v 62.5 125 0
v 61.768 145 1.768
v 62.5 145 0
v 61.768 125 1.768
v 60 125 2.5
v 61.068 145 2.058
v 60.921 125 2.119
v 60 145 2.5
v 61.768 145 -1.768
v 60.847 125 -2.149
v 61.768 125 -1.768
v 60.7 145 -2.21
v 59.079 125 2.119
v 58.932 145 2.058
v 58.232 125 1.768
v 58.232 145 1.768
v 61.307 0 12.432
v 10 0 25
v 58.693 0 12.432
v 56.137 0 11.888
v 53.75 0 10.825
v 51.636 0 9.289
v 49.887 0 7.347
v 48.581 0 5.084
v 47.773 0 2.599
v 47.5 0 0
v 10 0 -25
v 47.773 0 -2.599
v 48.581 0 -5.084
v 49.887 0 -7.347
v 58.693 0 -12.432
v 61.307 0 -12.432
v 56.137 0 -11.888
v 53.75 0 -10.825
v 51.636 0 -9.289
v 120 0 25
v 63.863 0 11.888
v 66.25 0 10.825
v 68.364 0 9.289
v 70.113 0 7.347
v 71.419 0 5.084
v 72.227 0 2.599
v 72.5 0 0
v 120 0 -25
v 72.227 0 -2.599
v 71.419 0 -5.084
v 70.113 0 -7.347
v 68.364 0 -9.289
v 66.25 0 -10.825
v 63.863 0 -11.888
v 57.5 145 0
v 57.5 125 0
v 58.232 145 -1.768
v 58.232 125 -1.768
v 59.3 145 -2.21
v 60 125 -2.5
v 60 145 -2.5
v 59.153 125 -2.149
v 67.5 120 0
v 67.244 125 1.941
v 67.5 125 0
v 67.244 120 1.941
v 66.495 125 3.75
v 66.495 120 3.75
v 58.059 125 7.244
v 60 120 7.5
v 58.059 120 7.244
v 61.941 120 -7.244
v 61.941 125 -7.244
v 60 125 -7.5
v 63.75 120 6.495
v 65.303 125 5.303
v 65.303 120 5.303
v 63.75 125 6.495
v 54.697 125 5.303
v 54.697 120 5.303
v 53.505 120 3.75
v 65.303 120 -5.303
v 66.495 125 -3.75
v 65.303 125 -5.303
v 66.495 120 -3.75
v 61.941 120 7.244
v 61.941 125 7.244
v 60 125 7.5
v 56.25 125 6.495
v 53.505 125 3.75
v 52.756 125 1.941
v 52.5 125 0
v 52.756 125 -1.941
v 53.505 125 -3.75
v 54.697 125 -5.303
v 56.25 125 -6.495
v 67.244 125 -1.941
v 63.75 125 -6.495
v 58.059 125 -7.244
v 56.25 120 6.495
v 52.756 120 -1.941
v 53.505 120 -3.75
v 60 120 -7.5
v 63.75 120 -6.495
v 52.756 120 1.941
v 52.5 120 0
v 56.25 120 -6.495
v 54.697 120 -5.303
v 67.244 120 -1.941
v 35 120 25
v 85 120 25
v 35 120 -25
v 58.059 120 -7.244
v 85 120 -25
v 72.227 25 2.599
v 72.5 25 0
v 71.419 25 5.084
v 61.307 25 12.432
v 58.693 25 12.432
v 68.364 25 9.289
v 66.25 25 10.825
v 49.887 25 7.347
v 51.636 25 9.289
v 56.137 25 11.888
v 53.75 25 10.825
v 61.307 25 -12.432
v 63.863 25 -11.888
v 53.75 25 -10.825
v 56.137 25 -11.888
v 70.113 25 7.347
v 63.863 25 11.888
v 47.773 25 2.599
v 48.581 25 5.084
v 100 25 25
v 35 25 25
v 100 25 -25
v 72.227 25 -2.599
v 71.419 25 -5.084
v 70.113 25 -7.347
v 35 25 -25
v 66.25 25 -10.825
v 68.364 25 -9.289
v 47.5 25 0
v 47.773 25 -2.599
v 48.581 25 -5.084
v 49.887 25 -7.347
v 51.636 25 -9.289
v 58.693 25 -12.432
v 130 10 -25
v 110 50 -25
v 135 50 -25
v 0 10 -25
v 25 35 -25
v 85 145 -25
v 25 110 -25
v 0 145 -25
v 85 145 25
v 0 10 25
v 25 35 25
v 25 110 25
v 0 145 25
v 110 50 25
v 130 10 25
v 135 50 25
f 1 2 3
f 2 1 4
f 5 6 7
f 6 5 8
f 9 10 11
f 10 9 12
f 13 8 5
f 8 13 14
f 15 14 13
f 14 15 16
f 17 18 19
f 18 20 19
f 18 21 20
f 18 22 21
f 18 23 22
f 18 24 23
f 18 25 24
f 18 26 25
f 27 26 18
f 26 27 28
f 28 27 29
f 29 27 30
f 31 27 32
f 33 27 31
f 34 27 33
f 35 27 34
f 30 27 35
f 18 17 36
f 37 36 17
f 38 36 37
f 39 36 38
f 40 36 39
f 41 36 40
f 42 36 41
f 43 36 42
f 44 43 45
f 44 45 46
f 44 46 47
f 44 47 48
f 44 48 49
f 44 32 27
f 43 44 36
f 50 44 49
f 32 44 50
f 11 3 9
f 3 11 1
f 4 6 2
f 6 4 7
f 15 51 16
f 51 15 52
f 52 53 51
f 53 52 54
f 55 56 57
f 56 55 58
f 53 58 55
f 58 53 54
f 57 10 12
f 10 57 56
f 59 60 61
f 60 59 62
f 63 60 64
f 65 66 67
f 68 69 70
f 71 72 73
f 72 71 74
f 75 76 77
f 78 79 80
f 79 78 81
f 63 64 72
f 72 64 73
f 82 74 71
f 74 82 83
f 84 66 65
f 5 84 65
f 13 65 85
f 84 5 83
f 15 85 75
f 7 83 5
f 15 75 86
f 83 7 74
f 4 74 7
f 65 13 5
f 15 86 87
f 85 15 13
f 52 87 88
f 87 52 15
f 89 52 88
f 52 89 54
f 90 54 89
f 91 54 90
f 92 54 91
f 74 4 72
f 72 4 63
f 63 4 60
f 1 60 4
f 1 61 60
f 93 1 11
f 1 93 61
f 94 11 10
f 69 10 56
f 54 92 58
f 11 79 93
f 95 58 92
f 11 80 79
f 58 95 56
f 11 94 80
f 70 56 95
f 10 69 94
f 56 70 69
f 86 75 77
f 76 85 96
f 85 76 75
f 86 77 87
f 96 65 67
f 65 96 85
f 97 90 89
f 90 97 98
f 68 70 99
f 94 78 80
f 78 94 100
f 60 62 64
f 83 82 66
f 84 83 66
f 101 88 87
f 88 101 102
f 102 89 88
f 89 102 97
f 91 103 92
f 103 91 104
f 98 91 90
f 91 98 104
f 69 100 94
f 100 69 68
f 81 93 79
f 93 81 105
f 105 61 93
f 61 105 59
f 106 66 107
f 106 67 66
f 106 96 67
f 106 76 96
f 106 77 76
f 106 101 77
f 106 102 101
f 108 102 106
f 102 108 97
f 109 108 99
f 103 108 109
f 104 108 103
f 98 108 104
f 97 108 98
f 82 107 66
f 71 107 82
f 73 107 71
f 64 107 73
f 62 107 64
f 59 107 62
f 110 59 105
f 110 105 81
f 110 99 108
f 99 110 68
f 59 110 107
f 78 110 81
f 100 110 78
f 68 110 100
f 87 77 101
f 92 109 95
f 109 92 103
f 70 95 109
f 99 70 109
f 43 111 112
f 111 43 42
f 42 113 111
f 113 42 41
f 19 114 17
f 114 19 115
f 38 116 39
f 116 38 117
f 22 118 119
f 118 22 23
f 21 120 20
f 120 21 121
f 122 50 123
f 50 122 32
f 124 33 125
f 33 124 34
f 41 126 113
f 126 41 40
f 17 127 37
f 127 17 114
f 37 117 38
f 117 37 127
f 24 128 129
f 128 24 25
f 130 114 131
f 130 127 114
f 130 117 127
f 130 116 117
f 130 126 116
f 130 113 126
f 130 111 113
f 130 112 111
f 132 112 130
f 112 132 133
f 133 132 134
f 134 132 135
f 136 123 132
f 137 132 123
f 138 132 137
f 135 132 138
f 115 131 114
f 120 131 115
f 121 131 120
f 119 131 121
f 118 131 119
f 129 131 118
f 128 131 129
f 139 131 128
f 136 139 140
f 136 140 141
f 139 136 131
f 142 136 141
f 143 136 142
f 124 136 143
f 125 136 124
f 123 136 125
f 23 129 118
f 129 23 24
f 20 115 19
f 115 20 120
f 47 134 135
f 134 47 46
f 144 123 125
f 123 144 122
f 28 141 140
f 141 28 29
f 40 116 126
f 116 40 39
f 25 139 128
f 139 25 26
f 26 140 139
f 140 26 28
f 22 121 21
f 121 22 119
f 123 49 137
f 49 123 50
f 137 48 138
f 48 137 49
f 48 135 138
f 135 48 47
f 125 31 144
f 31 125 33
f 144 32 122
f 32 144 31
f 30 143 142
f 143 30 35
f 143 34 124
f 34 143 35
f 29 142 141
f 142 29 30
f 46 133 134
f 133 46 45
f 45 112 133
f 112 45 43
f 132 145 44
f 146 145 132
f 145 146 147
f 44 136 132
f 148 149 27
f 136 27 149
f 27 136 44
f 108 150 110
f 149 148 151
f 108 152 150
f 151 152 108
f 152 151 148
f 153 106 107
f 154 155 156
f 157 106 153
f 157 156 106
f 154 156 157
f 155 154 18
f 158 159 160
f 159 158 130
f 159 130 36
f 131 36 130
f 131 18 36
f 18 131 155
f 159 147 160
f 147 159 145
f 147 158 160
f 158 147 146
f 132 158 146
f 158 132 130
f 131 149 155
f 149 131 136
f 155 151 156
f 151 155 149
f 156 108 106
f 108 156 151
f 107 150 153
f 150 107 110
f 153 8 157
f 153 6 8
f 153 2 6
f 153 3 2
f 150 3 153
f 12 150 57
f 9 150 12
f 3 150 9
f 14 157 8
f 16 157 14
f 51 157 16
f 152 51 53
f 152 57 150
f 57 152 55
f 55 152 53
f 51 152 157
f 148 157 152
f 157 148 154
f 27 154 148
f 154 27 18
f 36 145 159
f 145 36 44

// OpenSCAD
thickness=25;
height=120;
width=120;
trim=10;
holeDiam=5;

difference() {
    hook();
    hole();
}

module hook() {
linear_extrude(height = 2 * thickness, center = true, slices = 20, scale = 1.0)
polygon([
    [0 ,trim],
    [trim, 0],
    [width, 0],
    [width + trim, trim],
    [width + thickness -trim, 2 * thickness],
    [width -trim, 2 * thickness],
    [width - 2 * trim, thickness],
    [width - thickness, thickness],
    [thickness + trim,thickness],
    [thickness, thickness + trim],
    [thickness, height - trim],
    [thickness + trim, height],
    [thickness +  width / 2, height],
    [thickness +  width / 2, height + thickness],
    [0, height + thickness],
    ]);
}

module hole() {
    translate([width/2, height, 0]) rotate([90, 0, 0]) cylinder(h = height * 2, d = holeDiam, center = true);
    translate([width/2, height + holeDiam / 2, 0]) rotate([90, 0, 0]) cylinder(h = holeDiam, d = 3 * holeDiam, center = true);
    translate([width/2, thickness/2, 0]) rotate([90, 0, 0]) cylinder(h = thickness, d = thickness, center = true);
}
